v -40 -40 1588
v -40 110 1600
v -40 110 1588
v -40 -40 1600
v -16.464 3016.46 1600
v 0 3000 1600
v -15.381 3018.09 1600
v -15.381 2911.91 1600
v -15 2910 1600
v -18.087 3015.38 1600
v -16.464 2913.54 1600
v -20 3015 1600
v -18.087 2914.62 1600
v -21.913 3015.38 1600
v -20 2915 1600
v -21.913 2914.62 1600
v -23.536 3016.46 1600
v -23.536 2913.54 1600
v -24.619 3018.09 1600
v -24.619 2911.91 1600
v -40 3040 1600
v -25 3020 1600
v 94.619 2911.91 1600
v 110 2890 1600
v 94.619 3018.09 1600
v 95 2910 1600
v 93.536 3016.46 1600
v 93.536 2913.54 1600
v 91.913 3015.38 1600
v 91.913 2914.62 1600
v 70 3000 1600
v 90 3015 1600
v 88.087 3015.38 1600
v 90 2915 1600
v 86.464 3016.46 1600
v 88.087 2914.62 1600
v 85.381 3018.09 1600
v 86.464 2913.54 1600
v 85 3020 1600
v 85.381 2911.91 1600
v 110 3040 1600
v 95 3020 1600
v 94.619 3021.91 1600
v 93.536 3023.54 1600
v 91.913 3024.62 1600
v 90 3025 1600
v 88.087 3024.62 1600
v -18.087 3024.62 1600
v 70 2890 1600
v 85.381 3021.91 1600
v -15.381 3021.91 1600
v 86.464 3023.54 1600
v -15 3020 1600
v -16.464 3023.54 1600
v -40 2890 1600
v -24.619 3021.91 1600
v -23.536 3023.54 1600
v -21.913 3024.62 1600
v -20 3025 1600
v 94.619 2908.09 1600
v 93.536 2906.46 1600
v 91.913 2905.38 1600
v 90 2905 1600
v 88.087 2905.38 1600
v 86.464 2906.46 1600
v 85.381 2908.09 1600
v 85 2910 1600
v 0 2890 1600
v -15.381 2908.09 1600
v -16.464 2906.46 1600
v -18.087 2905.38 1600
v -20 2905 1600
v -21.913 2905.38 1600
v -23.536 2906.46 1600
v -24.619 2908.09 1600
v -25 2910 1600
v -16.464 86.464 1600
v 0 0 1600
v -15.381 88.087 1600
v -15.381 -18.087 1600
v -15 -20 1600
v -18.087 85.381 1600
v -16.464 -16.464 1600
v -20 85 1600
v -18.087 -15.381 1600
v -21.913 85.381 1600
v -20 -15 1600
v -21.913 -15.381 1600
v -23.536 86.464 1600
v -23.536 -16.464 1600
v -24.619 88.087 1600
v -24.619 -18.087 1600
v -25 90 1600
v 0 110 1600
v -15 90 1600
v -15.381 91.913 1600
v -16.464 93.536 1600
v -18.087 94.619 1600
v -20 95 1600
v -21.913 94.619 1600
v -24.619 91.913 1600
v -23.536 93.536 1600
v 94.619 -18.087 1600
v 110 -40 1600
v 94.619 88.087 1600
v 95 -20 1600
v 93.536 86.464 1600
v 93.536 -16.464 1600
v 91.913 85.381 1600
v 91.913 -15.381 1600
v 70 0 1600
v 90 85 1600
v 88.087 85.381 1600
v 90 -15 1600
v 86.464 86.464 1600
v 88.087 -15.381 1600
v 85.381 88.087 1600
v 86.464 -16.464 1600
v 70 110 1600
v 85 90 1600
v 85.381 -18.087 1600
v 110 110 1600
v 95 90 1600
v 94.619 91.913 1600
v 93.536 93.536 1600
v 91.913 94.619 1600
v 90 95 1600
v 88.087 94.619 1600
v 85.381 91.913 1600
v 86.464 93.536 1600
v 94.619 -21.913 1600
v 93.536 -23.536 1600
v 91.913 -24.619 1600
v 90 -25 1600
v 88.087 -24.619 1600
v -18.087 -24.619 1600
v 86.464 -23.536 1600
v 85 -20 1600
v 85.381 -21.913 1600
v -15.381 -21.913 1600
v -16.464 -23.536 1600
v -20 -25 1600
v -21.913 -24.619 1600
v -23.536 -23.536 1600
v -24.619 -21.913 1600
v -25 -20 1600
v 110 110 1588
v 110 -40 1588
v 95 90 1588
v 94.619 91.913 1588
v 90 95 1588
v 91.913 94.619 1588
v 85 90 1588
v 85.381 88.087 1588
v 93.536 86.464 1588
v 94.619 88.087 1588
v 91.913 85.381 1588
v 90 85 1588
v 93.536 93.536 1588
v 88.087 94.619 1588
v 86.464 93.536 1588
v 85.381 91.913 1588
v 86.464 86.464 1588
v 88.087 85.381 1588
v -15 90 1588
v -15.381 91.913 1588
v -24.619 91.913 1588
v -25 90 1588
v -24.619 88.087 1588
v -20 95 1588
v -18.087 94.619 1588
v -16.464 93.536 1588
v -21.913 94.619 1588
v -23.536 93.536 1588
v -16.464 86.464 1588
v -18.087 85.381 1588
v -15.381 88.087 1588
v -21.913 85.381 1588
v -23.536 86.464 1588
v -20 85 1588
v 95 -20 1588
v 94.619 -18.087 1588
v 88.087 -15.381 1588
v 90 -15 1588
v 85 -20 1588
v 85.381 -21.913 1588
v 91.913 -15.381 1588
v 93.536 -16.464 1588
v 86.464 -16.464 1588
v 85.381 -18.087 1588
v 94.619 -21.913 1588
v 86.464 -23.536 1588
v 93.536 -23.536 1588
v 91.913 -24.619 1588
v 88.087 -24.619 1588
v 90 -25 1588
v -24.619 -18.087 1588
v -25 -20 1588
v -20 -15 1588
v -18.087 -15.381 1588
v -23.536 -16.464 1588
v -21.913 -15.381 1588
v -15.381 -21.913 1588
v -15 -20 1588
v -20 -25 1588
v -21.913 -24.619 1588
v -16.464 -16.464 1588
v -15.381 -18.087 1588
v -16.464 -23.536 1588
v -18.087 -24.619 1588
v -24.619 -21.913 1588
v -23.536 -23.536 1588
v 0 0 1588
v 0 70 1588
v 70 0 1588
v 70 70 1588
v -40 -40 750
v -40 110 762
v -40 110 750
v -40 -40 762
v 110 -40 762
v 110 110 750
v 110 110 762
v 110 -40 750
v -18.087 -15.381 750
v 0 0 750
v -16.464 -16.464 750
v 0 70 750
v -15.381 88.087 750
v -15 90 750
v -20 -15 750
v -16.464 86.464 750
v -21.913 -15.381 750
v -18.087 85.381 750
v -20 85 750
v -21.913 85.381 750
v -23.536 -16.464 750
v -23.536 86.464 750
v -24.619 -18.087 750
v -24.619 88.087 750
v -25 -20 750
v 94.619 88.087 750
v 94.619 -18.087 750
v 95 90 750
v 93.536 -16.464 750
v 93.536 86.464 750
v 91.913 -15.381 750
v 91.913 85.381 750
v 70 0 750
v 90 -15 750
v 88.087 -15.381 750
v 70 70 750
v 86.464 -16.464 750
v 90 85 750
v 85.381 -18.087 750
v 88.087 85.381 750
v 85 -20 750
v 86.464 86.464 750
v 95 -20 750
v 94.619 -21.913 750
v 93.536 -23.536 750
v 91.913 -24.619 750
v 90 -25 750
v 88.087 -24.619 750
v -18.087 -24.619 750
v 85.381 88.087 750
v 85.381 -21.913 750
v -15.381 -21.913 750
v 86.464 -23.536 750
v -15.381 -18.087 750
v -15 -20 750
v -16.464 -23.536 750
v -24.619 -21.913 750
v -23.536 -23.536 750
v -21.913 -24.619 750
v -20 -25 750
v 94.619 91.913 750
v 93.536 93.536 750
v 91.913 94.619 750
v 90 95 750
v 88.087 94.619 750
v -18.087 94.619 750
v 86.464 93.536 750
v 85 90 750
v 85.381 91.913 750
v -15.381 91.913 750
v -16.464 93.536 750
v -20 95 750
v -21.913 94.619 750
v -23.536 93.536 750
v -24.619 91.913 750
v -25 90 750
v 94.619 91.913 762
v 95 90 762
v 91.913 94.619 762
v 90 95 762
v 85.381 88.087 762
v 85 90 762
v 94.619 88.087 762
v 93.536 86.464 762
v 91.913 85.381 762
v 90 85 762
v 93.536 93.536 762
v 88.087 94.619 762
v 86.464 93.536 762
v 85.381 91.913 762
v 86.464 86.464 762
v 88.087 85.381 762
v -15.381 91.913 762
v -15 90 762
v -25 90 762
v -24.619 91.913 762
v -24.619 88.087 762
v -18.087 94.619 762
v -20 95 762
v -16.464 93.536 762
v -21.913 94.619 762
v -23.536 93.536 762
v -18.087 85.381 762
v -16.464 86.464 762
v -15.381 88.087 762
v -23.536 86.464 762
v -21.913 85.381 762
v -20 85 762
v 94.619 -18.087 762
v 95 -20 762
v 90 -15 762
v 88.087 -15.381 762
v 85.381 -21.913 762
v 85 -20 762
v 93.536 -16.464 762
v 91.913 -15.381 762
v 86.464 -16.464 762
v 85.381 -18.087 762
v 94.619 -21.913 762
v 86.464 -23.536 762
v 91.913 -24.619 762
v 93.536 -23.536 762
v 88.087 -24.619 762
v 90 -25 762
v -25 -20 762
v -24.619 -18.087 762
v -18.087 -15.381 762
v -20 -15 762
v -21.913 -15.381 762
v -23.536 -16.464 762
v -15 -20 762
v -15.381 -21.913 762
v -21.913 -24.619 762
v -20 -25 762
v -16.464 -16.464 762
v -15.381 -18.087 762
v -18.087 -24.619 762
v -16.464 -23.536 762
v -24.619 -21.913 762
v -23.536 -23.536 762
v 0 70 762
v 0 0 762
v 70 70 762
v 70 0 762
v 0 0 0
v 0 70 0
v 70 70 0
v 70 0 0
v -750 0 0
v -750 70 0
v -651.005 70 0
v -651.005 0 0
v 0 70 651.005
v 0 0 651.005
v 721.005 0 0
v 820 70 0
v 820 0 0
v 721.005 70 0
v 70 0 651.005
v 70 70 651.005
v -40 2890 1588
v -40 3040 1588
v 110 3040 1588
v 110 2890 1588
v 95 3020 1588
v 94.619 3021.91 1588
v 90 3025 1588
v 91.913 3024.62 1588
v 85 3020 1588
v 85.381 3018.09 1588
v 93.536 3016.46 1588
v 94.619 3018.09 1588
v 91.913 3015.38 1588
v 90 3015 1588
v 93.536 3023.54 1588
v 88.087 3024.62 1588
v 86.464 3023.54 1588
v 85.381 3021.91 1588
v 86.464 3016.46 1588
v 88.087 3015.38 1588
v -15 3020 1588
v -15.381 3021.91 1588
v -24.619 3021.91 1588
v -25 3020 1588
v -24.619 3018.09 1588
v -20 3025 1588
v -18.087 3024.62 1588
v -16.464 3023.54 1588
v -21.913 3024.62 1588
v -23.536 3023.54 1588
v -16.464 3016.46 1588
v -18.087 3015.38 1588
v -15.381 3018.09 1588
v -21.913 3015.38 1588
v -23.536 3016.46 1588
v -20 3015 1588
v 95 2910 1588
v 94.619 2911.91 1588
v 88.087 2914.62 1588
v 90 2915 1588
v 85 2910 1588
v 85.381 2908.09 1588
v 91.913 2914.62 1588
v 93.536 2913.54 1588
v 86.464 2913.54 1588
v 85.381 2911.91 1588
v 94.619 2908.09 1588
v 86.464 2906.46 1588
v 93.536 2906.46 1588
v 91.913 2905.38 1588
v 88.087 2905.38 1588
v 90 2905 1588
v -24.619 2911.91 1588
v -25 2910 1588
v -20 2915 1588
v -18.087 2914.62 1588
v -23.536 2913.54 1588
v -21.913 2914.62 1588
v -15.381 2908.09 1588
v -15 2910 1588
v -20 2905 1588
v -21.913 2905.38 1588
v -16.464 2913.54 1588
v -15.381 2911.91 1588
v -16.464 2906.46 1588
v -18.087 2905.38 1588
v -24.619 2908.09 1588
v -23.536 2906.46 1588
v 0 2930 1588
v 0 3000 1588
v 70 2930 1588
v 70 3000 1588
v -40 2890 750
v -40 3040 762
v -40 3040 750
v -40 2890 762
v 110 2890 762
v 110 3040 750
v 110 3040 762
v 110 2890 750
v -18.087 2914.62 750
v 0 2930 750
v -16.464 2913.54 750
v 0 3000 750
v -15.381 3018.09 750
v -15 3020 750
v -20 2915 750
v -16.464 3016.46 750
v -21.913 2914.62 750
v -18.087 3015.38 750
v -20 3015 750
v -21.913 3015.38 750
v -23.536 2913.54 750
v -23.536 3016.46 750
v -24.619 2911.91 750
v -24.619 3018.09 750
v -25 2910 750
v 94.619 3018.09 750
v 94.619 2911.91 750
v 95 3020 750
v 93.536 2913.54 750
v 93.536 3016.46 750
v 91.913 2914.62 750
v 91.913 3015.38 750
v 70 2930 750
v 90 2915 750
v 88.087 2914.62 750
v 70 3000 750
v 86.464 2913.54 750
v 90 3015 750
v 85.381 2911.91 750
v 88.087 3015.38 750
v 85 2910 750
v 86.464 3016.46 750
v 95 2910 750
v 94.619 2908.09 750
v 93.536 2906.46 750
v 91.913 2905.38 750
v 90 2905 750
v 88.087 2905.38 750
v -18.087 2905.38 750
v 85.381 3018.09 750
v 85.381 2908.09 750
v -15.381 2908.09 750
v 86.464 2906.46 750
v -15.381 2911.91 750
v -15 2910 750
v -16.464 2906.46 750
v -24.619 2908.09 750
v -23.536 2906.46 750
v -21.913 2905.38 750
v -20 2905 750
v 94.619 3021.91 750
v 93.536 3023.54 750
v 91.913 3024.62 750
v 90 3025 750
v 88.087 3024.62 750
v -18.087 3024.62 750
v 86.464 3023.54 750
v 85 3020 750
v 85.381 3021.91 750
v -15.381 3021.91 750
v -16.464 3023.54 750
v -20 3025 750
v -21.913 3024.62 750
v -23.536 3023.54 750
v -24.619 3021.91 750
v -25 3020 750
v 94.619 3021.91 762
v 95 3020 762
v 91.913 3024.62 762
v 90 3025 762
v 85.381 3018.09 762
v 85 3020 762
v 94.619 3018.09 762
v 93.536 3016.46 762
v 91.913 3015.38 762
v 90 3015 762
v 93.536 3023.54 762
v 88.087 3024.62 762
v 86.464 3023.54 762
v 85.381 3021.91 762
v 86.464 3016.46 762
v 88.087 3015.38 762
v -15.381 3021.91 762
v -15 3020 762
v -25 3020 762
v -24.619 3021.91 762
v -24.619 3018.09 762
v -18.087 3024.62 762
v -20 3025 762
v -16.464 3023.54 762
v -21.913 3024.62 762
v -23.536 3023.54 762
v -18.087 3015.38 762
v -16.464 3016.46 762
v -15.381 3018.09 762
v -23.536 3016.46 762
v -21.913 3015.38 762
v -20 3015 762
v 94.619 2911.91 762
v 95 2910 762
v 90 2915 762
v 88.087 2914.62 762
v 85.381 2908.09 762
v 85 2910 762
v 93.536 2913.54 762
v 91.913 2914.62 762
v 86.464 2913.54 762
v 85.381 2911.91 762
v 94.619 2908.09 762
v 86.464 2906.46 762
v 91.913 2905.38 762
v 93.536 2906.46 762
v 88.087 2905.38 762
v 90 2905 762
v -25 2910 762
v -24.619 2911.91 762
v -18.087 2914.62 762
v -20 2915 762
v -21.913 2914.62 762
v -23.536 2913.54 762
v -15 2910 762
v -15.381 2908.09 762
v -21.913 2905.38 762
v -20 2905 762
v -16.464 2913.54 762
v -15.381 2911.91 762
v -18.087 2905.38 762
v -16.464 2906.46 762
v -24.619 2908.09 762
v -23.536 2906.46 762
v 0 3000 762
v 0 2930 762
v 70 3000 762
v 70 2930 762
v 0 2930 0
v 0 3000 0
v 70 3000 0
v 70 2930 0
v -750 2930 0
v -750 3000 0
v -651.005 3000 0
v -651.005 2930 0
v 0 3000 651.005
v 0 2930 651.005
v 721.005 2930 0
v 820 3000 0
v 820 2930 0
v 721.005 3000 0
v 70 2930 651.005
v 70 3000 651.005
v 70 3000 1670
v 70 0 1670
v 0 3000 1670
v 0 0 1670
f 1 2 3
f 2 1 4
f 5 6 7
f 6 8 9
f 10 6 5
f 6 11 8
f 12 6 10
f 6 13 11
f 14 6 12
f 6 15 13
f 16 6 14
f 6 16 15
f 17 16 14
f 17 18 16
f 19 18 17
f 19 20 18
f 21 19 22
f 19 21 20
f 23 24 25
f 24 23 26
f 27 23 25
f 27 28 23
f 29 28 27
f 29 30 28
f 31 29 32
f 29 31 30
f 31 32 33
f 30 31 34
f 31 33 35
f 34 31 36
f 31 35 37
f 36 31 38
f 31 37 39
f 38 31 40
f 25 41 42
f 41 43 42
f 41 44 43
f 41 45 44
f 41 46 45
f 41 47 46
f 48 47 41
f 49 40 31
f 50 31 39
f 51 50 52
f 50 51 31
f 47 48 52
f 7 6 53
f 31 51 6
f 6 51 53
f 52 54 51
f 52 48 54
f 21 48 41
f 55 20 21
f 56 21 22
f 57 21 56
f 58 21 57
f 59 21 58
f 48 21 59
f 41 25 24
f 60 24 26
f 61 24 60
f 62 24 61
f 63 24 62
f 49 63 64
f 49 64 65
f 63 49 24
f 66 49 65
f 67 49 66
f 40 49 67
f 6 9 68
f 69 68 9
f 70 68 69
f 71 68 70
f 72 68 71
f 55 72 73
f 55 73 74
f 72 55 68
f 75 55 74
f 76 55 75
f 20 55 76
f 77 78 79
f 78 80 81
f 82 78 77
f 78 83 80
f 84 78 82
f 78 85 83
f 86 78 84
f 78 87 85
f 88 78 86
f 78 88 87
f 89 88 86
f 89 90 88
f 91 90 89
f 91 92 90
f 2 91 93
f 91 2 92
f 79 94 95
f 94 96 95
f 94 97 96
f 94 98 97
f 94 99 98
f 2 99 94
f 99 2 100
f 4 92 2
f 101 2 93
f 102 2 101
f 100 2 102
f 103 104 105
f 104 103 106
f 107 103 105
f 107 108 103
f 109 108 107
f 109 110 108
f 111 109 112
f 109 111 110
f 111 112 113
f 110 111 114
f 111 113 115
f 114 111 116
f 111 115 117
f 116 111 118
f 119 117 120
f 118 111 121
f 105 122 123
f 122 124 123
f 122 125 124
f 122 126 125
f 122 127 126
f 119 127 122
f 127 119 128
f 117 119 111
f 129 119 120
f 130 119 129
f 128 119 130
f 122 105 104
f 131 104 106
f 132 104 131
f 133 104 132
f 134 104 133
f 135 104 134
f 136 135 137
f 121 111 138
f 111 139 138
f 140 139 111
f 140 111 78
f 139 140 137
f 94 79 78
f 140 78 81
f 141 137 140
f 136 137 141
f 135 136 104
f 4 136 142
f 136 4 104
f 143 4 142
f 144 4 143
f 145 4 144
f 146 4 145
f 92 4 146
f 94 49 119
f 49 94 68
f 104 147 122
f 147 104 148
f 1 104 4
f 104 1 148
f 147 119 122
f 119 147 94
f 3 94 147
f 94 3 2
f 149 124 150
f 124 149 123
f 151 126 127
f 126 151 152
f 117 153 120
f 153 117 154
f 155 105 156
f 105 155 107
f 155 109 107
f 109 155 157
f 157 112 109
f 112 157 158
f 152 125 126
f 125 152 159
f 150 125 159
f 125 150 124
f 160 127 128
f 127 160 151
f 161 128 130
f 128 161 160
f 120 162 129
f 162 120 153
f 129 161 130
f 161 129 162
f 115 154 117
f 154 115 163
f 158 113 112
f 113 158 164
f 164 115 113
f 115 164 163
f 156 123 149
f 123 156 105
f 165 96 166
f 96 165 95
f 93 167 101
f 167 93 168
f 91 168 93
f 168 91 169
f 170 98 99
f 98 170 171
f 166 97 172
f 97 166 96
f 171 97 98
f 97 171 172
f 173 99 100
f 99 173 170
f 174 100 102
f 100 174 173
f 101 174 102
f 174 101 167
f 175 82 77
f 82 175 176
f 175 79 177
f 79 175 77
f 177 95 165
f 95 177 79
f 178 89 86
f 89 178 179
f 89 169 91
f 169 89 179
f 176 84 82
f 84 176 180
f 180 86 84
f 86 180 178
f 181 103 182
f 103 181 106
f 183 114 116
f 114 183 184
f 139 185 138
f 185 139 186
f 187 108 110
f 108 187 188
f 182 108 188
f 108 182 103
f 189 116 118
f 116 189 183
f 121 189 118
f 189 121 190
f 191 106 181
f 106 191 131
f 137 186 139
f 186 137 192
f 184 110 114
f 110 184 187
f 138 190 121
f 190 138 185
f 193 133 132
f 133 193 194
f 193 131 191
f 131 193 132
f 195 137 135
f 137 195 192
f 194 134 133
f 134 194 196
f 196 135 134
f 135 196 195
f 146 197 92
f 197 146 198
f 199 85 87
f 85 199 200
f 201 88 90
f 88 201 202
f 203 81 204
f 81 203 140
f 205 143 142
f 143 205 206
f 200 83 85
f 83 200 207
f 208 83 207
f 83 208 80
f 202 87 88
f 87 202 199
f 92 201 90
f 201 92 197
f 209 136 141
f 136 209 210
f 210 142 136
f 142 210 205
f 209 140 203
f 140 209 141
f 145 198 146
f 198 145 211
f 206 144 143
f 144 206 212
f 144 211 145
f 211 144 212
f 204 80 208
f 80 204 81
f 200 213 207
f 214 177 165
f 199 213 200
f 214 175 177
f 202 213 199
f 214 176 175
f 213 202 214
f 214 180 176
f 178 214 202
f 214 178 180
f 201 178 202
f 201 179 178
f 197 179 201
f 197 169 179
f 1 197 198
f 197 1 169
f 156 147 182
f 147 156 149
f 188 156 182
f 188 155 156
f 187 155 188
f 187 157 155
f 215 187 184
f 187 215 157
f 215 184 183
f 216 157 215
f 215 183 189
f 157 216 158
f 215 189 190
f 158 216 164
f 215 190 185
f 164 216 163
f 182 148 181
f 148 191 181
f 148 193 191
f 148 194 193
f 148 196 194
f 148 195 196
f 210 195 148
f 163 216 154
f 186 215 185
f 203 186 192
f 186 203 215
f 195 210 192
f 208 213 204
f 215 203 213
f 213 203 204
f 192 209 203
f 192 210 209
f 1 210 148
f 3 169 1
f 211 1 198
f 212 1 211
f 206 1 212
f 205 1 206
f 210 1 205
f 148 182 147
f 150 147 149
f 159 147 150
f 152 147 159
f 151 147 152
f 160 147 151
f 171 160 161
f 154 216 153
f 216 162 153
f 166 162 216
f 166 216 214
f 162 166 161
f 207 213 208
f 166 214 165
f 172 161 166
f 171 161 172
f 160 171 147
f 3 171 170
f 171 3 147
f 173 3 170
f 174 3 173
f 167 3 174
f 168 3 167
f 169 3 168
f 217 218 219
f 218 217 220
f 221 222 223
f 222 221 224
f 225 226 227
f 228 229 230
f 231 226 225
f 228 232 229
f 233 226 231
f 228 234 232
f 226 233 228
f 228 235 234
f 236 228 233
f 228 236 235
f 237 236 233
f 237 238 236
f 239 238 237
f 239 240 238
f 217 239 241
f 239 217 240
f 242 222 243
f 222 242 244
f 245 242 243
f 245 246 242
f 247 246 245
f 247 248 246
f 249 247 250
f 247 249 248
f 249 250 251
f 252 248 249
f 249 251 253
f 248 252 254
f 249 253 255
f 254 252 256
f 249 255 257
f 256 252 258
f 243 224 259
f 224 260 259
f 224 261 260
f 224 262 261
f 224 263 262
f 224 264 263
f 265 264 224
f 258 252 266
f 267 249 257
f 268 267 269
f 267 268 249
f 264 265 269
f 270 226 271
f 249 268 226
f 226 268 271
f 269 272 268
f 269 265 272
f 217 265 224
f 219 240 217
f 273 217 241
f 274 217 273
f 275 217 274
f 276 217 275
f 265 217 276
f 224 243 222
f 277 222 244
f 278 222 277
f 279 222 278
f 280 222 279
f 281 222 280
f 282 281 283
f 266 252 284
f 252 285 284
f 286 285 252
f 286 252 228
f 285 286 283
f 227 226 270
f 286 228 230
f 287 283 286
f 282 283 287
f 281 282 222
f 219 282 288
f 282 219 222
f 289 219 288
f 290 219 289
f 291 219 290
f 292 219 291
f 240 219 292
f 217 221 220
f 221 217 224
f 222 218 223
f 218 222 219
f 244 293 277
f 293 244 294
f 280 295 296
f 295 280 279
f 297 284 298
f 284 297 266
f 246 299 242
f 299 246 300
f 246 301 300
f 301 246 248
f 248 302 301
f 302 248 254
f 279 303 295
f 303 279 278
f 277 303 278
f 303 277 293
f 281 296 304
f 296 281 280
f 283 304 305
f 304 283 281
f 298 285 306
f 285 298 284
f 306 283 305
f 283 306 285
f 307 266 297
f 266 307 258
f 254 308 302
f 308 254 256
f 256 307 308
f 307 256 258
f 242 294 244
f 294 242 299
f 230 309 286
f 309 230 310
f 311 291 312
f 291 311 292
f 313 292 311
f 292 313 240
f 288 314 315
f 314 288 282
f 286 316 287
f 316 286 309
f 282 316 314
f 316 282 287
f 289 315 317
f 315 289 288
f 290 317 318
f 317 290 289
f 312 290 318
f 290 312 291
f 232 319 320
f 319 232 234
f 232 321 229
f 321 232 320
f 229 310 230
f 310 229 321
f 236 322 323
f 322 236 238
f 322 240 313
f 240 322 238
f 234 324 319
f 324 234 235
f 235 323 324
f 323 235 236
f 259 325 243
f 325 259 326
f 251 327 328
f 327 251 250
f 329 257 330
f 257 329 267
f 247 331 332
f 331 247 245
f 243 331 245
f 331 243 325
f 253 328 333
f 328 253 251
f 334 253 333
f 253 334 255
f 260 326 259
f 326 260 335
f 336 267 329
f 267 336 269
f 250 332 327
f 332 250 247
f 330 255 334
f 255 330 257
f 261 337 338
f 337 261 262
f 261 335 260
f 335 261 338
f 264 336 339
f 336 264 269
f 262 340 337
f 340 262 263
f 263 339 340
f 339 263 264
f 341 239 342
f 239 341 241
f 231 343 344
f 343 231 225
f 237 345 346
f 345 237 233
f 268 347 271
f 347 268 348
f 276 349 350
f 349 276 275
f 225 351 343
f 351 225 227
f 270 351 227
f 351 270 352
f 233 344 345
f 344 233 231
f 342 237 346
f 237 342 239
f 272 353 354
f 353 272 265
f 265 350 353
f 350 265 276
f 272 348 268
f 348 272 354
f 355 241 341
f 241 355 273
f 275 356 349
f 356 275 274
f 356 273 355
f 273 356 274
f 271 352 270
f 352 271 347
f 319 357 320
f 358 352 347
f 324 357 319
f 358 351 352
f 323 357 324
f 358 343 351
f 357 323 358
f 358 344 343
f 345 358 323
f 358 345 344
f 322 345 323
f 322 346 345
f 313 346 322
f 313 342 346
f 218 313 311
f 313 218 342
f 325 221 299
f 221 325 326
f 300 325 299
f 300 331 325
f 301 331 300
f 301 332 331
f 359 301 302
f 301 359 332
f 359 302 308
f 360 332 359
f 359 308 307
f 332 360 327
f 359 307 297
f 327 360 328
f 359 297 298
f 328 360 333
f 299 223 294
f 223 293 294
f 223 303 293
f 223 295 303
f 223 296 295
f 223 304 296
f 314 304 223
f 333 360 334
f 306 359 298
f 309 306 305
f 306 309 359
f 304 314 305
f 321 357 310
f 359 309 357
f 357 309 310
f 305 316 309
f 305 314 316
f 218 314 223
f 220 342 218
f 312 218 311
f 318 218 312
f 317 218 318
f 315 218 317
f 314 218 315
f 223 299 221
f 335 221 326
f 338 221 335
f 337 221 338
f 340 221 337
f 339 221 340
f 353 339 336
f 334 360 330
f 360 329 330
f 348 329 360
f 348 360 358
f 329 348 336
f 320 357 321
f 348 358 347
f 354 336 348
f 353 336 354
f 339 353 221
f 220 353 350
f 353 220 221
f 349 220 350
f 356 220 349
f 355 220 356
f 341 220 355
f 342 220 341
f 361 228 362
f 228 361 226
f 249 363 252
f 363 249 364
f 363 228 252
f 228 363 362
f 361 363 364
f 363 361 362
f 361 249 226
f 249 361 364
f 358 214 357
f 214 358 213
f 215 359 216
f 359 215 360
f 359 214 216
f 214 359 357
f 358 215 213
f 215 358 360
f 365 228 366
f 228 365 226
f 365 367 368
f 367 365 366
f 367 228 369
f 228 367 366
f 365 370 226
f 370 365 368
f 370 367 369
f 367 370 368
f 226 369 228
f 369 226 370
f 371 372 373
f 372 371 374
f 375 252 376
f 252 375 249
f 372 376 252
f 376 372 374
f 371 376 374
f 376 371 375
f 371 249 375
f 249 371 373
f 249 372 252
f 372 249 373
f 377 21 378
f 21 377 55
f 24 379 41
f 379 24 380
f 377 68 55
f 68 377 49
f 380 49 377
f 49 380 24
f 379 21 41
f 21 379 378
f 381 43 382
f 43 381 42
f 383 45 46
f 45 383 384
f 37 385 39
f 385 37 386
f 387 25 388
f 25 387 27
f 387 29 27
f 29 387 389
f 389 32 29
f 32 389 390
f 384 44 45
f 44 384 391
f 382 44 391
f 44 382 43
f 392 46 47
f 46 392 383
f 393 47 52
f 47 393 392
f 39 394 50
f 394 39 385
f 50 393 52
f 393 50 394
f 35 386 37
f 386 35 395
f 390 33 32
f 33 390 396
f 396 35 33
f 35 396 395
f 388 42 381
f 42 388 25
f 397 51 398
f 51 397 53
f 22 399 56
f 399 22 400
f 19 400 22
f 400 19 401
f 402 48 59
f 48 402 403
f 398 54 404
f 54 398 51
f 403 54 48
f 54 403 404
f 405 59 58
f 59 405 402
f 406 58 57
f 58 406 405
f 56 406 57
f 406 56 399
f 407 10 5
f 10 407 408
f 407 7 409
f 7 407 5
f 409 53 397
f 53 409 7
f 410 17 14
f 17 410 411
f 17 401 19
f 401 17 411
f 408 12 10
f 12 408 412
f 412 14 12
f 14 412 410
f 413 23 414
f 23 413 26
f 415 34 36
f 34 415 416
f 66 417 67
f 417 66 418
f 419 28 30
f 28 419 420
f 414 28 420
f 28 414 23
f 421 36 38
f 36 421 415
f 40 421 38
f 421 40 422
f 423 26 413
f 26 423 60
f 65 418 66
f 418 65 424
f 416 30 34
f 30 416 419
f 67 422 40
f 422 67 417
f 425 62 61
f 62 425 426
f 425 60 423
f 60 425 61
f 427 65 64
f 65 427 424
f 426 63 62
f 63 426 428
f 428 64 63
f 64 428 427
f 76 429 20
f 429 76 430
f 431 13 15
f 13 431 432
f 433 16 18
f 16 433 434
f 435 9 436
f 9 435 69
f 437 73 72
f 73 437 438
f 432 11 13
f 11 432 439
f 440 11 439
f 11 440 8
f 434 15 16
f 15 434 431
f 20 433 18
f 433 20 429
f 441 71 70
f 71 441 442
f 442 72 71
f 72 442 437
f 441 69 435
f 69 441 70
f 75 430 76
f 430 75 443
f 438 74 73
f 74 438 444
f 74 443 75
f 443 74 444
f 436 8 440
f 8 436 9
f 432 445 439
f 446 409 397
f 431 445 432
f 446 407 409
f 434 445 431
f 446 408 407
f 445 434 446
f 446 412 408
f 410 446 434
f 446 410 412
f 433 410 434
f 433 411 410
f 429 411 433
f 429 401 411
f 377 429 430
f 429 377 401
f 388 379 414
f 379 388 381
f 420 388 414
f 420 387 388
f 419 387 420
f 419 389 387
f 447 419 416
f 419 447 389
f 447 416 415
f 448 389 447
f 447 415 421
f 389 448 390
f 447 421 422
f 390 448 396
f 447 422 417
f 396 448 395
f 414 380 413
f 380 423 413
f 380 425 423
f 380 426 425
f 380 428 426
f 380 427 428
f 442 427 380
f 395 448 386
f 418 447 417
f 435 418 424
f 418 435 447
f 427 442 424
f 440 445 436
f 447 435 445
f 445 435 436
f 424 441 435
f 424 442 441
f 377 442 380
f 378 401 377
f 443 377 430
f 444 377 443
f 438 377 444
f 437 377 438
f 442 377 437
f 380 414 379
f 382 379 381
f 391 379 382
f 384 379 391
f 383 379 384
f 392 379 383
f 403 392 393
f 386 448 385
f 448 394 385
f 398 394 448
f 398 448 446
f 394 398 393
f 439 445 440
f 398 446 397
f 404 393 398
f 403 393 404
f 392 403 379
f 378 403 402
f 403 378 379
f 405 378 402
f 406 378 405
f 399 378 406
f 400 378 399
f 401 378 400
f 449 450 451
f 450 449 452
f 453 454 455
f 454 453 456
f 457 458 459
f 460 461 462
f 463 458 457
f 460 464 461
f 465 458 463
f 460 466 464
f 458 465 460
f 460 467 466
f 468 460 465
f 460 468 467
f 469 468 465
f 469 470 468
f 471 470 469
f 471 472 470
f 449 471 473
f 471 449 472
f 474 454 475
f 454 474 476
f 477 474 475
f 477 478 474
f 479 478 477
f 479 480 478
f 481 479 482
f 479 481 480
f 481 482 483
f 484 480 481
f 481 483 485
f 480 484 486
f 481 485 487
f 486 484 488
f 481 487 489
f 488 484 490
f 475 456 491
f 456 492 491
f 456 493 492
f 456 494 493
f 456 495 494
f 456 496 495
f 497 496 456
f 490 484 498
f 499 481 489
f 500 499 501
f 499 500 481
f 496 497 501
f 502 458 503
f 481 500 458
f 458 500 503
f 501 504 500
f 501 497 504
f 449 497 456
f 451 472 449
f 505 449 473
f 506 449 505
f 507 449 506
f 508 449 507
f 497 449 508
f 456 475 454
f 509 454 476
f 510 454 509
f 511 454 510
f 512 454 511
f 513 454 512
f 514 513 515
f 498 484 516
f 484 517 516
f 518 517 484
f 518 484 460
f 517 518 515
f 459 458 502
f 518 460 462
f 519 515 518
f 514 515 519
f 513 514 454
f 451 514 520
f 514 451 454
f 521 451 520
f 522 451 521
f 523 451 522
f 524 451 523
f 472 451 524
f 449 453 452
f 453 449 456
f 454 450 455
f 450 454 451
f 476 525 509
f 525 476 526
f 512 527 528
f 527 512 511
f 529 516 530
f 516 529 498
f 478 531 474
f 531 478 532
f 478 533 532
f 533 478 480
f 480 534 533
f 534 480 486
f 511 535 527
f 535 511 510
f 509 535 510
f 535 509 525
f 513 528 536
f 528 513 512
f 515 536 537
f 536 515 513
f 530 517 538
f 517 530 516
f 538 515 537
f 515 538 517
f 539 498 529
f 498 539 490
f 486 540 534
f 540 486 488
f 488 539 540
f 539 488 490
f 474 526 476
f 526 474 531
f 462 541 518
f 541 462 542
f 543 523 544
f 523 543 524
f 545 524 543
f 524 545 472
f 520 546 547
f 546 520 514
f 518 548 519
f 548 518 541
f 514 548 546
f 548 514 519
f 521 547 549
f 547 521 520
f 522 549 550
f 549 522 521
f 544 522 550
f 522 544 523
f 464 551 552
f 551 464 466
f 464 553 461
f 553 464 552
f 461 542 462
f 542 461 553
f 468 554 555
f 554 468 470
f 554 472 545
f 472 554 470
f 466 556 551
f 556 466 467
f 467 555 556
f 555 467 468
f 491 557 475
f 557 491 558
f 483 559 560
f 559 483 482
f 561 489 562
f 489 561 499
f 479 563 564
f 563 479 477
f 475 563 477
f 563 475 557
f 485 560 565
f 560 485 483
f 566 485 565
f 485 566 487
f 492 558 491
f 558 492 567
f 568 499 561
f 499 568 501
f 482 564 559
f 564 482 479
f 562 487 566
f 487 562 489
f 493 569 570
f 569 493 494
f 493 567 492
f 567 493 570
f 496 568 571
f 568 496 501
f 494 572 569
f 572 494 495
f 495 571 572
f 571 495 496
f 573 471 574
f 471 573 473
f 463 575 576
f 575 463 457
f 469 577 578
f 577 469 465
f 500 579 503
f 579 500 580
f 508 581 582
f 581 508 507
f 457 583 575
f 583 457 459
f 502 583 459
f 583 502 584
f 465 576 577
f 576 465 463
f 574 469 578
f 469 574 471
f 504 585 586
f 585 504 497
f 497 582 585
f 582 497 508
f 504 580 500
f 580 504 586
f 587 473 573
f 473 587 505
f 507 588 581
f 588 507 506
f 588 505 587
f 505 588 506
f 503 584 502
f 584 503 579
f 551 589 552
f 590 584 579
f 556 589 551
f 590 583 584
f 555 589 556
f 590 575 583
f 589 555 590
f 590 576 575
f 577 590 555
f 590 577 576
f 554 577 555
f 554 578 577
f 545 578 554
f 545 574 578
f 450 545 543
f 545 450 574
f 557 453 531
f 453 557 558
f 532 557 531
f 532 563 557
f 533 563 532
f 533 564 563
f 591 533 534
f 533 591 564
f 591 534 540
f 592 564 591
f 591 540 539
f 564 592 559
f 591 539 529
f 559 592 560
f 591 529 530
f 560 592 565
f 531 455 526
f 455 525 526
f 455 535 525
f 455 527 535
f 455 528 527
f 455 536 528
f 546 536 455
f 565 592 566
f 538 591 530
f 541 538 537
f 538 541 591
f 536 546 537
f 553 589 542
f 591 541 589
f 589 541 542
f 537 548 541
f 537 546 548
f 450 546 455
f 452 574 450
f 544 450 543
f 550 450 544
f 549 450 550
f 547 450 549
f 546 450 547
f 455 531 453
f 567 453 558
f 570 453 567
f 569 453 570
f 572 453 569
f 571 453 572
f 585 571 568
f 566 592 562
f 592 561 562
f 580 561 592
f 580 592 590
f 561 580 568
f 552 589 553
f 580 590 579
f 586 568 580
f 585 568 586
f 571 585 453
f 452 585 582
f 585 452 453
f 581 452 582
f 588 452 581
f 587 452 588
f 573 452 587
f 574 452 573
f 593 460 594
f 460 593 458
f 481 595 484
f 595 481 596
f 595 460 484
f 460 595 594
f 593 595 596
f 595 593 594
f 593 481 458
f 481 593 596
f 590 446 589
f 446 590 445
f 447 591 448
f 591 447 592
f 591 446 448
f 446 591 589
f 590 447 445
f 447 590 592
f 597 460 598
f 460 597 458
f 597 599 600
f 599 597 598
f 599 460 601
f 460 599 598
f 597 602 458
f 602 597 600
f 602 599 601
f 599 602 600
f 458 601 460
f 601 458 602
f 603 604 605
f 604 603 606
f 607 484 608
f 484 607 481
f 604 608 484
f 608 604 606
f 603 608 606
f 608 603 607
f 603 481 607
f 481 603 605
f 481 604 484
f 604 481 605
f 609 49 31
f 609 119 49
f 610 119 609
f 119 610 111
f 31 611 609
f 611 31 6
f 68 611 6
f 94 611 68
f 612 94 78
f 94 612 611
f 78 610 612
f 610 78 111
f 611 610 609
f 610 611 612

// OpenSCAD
// file: steel section.scad
module square_section(h, t, l, miter) {
	box_section(h, h, t, l, miter);
}

module box_section(h, w, t, l, miter) {
	//echo(str(l, "mm box ", h, "x", w, "x", t, "mm"));
	translate([h/2, w/2, 0]) render() difference() {
		linear_extrude(l) translate([-w/2, -h/2]) difference() {
			polygon([[0, 0], [0, h], [w, h], [w, 0]]);
			polygon([[t, t], [t, h-t], [w-t, h-t], [w-t, t]]);
		}
		if (miter) {
			translate([h/2, 0, 0]) rotate([0, 45, 0]) translate([-h*2, -w, -h]) cube([h*3, w*2, h]);
			translate([h/2, 0, l]) rotate([0, -45, 0]) translate([-h*2, -w, 0]) cube([h*3, w*2, h]);
		}
	}
}

module angle_section(h, w, t, l) {
	//echo(str(l, "mm angle ", h, "x", w, "x", t, "mm"));
	linear_extrude(l) translate([-w/2, -h/2]) {
		polygon([[0, 0], [h, 0], [h, t], [t, t], [t, w], [0, w]]);
	}
}

square_section(10, 1, 100);
// main file
use <steel section.scad>;

section_d = 70;
section_t = 3;
gantry_width = 3000;
side_width = 1500;
height = 1600;

// cut from
// http://www.fhbrundle.co.uk/products/30031506__Mild_Steel_Flat_Bar_150_x_6mm_x_6_0_6_1m_Grade_S275
plate_t = 6;
plate_d = 150;
plate_hole = 10;

module section(l) {
    echo(str("section with length ", l));
    cube([section_d, section_d, l]);
    //square_section(section_d, section_t, l);
}

module gantry() {
    translate([0, 0, section_d + height]) rotate([-90, 0, 0]) section(gantry_width);
}

module plate() {
    difference() {
        translate([0, 0, plate_t/2]) cube([plate_d, plate_d, plate_t], center=true);
        translate([plate_d/2 - plate_hole*2, plate_d/2 - plate_hole*2, -0.5]) cylinder(d=plate_hole, h=plate_t+1);
        translate([-(plate_d/2 - plate_hole*2), plate_d/2 - plate_hole*2, -0.5]) cylinder(d=plate_hole, h=plate_t+1);
        translate([plate_d/2 - plate_hole*2, -(plate_d/2 - plate_hole*2), -0.5]) cylinder(d=plate_hole, h=plate_t+1);
        translate([-(plate_d/2 - plate_hole*2), -(plate_d/2 - plate_hole*2), -0.5]) cylinder(d=plate_hole, h=plate_t+1);
    }
}

module side() {
    translate([section_d/2, section_d/2, height-plate_t]) plate();
    translate([section_d/2, section_d/2, height-plate_t*2]) plate();
    join=section_d*1.5;
    side_height = side_width/2 - section_d*1.5;
    translate([0, 0, 0]) section(side_height+join);
    translate([0, 0, side_height+join]) {
        translate([section_d/2, section_d/2, plate_t*0]) plate();
        translate([section_d/2, section_d/2, plate_t*1]) plate();
    }
    middle = height-plate_t*4-side_height-join;
    translate([0, 0, height-plate_t*2-middle]) section(middle);
    one_side_width = side_width/2;
    one_side_height = side_width/2;
    tri_length = sqrt(one_side_width*one_side_width + one_side_height*one_side_height);
    a = 45;
    translate([-one_side_width, 0, 0]) rotate([0, a, 0]) mitre(a, tri_length) section(tri_length);
    translate([one_side_width + section_d, section_d, 0]) rotate([0, -a, 0])
    rotate([0, 0, 180]) mitre(a, tri_length) section(tri_length);
}

module mitre(a, tri_length) {
    render() rotate([0, a-a, 0]) difference() {
        echo(a, "mitre");
        children();
        rotate([0, 90-a, 0]) translate([0, 0, -section_d]) cube([section_d, section_d, tri_length]);
        
        // TODO: this bit isn't right
        translate([0, 0, tri_length]) rotate([0, -a, 0]) translate([0, 0, -tri_length]) cube([section_d, section_d, tri_length+section_d]);
    }
}

side();
gantry();
translate([0, gantry_width - section_d, 0]) side();
